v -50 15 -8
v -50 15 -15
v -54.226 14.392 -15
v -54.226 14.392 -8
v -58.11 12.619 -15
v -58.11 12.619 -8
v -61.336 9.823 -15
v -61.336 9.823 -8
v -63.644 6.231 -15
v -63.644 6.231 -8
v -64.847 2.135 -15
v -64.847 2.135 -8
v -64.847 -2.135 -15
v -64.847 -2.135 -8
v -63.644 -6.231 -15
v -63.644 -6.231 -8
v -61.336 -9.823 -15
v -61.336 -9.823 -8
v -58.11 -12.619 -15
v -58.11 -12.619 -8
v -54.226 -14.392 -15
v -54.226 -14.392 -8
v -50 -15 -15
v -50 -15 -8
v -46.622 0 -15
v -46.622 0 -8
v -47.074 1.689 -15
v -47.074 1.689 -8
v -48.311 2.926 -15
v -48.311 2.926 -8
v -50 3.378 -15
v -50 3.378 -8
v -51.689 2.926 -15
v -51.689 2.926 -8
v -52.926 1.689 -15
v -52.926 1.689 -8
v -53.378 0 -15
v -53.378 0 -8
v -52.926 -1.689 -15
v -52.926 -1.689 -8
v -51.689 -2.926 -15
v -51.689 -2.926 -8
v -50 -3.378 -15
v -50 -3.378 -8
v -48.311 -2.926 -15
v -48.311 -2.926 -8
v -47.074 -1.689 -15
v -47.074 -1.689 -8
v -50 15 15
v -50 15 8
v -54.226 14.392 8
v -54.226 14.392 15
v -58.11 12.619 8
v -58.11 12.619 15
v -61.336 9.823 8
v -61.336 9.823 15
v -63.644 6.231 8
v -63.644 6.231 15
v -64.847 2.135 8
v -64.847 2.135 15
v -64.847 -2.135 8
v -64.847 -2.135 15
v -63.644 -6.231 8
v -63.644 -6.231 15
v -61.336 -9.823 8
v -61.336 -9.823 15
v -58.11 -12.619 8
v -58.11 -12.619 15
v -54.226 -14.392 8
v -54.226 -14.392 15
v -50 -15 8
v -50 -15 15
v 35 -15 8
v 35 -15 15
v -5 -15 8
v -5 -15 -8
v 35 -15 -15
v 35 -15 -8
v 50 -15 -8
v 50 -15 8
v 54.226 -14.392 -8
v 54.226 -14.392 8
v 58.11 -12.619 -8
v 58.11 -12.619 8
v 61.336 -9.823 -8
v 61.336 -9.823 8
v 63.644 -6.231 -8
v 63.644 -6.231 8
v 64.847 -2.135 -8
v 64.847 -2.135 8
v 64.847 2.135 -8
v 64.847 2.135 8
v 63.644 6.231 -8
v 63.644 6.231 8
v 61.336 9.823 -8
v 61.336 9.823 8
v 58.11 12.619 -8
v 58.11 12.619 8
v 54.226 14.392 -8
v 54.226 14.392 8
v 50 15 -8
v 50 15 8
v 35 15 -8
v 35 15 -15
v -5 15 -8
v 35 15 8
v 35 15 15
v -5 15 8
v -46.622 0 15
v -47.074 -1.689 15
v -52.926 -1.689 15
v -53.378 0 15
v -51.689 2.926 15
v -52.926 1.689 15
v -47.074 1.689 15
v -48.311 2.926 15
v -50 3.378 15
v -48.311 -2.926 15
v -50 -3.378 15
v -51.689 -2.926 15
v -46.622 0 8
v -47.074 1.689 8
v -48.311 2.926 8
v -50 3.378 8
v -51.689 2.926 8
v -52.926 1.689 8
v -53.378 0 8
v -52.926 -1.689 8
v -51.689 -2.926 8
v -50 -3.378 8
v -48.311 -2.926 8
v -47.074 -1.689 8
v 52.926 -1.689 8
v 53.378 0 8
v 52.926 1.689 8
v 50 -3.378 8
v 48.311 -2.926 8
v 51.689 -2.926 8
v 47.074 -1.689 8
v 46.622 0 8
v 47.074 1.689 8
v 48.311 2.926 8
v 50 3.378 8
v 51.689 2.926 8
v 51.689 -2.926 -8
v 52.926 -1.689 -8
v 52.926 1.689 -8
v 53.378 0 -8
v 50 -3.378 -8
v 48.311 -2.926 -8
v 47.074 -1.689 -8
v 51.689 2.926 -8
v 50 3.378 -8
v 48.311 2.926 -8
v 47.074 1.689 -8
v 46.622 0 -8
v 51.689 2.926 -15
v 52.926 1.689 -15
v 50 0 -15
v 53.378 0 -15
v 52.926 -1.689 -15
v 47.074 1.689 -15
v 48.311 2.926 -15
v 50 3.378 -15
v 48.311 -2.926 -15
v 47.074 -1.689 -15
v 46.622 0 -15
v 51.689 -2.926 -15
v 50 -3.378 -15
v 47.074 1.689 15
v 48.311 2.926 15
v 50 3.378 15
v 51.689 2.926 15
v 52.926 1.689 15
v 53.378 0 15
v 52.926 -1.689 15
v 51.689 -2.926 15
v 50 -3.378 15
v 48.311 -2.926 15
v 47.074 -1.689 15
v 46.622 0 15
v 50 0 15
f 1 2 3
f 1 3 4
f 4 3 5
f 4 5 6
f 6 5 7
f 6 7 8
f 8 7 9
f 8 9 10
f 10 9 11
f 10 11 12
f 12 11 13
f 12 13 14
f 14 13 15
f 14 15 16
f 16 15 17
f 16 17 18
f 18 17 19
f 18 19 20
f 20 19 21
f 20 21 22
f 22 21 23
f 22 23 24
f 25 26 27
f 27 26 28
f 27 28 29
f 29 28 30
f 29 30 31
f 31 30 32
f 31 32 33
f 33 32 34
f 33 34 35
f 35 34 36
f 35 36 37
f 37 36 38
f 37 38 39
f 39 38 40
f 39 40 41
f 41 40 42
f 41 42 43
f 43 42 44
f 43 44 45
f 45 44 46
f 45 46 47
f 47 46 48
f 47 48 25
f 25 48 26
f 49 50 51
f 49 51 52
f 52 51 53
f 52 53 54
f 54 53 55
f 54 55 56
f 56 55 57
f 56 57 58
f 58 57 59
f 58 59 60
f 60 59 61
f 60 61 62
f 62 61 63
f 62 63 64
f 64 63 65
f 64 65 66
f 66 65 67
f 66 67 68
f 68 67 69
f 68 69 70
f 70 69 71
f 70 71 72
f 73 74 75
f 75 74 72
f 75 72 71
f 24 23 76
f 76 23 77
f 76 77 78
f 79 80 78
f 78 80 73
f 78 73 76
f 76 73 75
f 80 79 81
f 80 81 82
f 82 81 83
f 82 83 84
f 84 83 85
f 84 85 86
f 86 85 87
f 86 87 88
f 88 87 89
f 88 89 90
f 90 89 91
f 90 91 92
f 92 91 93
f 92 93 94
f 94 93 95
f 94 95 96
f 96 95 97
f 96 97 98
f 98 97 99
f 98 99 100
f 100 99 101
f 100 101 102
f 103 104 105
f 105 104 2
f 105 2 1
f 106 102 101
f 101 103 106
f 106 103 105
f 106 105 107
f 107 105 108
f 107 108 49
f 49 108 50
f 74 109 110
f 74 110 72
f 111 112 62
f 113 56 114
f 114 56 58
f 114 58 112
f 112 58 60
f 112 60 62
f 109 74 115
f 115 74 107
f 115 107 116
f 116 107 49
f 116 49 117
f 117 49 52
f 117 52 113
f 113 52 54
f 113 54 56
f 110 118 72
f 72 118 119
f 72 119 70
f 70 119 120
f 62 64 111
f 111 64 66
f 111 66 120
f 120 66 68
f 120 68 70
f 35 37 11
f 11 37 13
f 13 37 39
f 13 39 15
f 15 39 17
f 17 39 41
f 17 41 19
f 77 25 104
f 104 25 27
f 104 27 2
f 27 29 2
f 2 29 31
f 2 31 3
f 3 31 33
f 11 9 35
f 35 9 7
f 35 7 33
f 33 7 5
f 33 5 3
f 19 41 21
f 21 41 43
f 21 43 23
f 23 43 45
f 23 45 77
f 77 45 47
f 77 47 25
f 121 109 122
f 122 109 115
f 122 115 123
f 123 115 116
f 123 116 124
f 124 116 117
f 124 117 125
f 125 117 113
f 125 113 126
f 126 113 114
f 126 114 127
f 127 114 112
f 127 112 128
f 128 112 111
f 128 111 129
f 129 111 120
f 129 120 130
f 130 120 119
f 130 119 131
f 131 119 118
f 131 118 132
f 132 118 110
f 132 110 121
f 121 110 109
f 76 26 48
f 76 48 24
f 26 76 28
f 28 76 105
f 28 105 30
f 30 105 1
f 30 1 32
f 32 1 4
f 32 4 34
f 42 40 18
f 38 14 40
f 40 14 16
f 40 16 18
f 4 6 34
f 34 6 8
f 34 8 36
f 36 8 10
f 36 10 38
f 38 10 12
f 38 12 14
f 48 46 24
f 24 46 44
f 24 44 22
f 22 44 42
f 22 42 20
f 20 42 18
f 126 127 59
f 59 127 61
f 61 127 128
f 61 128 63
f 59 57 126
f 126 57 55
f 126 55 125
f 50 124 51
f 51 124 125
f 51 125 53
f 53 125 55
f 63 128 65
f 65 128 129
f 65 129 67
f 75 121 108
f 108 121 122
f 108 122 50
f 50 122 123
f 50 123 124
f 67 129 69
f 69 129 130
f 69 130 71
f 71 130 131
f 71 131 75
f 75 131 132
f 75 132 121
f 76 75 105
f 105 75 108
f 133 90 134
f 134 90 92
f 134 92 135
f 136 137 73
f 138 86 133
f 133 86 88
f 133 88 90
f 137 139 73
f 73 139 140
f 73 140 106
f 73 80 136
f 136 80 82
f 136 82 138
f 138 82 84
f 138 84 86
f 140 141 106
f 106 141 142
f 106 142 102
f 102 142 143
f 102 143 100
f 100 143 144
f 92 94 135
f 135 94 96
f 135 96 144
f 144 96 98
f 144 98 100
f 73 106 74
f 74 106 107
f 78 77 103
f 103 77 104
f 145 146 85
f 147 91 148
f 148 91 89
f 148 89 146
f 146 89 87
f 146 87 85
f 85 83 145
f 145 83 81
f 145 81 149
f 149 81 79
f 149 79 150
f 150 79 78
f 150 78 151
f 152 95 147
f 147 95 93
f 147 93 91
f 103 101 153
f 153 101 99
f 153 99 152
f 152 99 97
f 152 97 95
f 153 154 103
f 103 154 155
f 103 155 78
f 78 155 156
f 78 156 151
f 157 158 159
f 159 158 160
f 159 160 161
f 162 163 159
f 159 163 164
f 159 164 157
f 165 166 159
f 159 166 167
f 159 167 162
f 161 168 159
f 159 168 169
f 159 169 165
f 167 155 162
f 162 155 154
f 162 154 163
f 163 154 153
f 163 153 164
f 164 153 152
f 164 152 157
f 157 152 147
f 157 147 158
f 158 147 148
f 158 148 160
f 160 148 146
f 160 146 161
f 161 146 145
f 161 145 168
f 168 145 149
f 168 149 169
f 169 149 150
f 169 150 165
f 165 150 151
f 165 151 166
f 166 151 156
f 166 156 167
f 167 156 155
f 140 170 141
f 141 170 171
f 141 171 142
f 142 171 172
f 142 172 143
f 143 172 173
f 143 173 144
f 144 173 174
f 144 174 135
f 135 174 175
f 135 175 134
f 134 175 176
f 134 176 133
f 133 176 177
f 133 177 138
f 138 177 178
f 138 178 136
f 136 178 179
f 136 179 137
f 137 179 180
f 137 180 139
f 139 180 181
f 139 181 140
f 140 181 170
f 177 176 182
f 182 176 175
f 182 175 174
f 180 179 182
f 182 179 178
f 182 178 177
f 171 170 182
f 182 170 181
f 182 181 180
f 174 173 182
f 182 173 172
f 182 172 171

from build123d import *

# Parameters (mm, degrees)
BOSS_EXTRUDE1_DEPTH             = 15
H_0_266_DIAMETER_HOLE1_D        = 6.7564
SKETCH5_W                       = 60
SKETCH5_H                       = 16
SKETCH5_H_2                     = 20.916111238
CUT_EXTRUDE1_DEPTH              = 74.143694192
BOSS_EXTRUDE2_REACH             = 70.374
SKETCH6_R                       = 3.3782
BOSS_EXTRUDE2_DIRECTION_2_REACH = 70.374


with BuildPart() as part:
    # Sketch1 → Boss-Extrude1 (new, symmetric)
    with BuildSketch(Plane.XY):
        with BuildLine():
            Line((-50, 15), (50, 15))
            ThreePointArc((50, 15), (65, 0), (50, -15))
            Line((50, -15), (-50, -15))
            ThreePointArc((-50, -15), (-65, 0), (-50, 15))
        make_face()
    extrude(amount=BOSS_EXTRUDE1_DEPTH, both=True)

    # H (0.266) Diameter Hole1 (through all)
    with Locations(Plane.XY.offset(15)):
        with Locations((-50, 0), (50, 0)):
            Hole(H_0_266_DIAMETER_HOLE1_D / 2)

    # Sketch5 → Cut-Extrude1 (cut, through all)
    with BuildSketch(Plane(origin=(0, 15, 0), x_dir=(1, 0, 0), z_dir=(0, 1, 0))):
        with Locations((-35, 0)):
            Rectangle(SKETCH5_W, SKETCH5_H)
        with Locations((65, 18.458055619)):
            Rectangle(SKETCH5_W, SKETCH5_H_2)
        with Locations((65, -18.458055619)):
            Rectangle(SKETCH5_W, SKETCH5_H_2)
    extrude(amount=-CUT_EXTRUDE1_DEPTH, mode=Mode.SUBTRACT)

    # Boss-Extrude2: up to this face of the body (flat: up to its plane)
    boss_extrude2_end = Plane(part.part.faces().sort_by_distance((-12.991398112, 0, 15))[0])
    # Sketch6 → Boss-Extrude2 (add, up to the picked face)
    with BuildSketch(Plane.XY, mode=Mode.PRIVATE) as boss_extrude2_sk1:
        with Locations((50, 0)):
            Circle(SKETCH6_R)
    boss_extrude2_tool1 = split(extrude(boss_extrude2_sk1.sketch, amount=BOSS_EXTRUDE2_REACH, mode=Mode.PRIVATE), bisect_by=boss_extrude2_end, keep=Keep.BOTH, mode=Mode.PRIVATE)
    add(boss_extrude2_tool1.solids().sort_by(Axis((50, 0, 0), (0, 0, 1)))[0])

    # Boss-Extrude2 direction 2: up to this face of the body (flat: up to its plane)
    boss_extrude2_direction_2_end = Plane(part.part.faces().sort_by_distance((-12.991398112, 0, -15))[0])
    # Sketch6 → Boss-Extrude2 direction 2 (add, up to the picked face)
    with BuildSketch(Plane.XY, mode=Mode.PRIVATE) as boss_extrude2_direction_2_sk1:
        with Locations((50, 0)):
            Circle(SKETCH6_R)
    boss_extrude2_direction_2_tool1 = split(extrude(boss_extrude2_direction_2_sk1.sketch, amount=-BOSS_EXTRUDE2_DIRECTION_2_REACH, mode=Mode.PRIVATE), bisect_by=boss_extrude2_direction_2_end, keep=Keep.BOTH, mode=Mode.PRIVATE)
    add(boss_extrude2_direction_2_tool1.solids().sort_by(Axis((50, 0, 0), (0, 0, -1)))[0])


solid = part.part
